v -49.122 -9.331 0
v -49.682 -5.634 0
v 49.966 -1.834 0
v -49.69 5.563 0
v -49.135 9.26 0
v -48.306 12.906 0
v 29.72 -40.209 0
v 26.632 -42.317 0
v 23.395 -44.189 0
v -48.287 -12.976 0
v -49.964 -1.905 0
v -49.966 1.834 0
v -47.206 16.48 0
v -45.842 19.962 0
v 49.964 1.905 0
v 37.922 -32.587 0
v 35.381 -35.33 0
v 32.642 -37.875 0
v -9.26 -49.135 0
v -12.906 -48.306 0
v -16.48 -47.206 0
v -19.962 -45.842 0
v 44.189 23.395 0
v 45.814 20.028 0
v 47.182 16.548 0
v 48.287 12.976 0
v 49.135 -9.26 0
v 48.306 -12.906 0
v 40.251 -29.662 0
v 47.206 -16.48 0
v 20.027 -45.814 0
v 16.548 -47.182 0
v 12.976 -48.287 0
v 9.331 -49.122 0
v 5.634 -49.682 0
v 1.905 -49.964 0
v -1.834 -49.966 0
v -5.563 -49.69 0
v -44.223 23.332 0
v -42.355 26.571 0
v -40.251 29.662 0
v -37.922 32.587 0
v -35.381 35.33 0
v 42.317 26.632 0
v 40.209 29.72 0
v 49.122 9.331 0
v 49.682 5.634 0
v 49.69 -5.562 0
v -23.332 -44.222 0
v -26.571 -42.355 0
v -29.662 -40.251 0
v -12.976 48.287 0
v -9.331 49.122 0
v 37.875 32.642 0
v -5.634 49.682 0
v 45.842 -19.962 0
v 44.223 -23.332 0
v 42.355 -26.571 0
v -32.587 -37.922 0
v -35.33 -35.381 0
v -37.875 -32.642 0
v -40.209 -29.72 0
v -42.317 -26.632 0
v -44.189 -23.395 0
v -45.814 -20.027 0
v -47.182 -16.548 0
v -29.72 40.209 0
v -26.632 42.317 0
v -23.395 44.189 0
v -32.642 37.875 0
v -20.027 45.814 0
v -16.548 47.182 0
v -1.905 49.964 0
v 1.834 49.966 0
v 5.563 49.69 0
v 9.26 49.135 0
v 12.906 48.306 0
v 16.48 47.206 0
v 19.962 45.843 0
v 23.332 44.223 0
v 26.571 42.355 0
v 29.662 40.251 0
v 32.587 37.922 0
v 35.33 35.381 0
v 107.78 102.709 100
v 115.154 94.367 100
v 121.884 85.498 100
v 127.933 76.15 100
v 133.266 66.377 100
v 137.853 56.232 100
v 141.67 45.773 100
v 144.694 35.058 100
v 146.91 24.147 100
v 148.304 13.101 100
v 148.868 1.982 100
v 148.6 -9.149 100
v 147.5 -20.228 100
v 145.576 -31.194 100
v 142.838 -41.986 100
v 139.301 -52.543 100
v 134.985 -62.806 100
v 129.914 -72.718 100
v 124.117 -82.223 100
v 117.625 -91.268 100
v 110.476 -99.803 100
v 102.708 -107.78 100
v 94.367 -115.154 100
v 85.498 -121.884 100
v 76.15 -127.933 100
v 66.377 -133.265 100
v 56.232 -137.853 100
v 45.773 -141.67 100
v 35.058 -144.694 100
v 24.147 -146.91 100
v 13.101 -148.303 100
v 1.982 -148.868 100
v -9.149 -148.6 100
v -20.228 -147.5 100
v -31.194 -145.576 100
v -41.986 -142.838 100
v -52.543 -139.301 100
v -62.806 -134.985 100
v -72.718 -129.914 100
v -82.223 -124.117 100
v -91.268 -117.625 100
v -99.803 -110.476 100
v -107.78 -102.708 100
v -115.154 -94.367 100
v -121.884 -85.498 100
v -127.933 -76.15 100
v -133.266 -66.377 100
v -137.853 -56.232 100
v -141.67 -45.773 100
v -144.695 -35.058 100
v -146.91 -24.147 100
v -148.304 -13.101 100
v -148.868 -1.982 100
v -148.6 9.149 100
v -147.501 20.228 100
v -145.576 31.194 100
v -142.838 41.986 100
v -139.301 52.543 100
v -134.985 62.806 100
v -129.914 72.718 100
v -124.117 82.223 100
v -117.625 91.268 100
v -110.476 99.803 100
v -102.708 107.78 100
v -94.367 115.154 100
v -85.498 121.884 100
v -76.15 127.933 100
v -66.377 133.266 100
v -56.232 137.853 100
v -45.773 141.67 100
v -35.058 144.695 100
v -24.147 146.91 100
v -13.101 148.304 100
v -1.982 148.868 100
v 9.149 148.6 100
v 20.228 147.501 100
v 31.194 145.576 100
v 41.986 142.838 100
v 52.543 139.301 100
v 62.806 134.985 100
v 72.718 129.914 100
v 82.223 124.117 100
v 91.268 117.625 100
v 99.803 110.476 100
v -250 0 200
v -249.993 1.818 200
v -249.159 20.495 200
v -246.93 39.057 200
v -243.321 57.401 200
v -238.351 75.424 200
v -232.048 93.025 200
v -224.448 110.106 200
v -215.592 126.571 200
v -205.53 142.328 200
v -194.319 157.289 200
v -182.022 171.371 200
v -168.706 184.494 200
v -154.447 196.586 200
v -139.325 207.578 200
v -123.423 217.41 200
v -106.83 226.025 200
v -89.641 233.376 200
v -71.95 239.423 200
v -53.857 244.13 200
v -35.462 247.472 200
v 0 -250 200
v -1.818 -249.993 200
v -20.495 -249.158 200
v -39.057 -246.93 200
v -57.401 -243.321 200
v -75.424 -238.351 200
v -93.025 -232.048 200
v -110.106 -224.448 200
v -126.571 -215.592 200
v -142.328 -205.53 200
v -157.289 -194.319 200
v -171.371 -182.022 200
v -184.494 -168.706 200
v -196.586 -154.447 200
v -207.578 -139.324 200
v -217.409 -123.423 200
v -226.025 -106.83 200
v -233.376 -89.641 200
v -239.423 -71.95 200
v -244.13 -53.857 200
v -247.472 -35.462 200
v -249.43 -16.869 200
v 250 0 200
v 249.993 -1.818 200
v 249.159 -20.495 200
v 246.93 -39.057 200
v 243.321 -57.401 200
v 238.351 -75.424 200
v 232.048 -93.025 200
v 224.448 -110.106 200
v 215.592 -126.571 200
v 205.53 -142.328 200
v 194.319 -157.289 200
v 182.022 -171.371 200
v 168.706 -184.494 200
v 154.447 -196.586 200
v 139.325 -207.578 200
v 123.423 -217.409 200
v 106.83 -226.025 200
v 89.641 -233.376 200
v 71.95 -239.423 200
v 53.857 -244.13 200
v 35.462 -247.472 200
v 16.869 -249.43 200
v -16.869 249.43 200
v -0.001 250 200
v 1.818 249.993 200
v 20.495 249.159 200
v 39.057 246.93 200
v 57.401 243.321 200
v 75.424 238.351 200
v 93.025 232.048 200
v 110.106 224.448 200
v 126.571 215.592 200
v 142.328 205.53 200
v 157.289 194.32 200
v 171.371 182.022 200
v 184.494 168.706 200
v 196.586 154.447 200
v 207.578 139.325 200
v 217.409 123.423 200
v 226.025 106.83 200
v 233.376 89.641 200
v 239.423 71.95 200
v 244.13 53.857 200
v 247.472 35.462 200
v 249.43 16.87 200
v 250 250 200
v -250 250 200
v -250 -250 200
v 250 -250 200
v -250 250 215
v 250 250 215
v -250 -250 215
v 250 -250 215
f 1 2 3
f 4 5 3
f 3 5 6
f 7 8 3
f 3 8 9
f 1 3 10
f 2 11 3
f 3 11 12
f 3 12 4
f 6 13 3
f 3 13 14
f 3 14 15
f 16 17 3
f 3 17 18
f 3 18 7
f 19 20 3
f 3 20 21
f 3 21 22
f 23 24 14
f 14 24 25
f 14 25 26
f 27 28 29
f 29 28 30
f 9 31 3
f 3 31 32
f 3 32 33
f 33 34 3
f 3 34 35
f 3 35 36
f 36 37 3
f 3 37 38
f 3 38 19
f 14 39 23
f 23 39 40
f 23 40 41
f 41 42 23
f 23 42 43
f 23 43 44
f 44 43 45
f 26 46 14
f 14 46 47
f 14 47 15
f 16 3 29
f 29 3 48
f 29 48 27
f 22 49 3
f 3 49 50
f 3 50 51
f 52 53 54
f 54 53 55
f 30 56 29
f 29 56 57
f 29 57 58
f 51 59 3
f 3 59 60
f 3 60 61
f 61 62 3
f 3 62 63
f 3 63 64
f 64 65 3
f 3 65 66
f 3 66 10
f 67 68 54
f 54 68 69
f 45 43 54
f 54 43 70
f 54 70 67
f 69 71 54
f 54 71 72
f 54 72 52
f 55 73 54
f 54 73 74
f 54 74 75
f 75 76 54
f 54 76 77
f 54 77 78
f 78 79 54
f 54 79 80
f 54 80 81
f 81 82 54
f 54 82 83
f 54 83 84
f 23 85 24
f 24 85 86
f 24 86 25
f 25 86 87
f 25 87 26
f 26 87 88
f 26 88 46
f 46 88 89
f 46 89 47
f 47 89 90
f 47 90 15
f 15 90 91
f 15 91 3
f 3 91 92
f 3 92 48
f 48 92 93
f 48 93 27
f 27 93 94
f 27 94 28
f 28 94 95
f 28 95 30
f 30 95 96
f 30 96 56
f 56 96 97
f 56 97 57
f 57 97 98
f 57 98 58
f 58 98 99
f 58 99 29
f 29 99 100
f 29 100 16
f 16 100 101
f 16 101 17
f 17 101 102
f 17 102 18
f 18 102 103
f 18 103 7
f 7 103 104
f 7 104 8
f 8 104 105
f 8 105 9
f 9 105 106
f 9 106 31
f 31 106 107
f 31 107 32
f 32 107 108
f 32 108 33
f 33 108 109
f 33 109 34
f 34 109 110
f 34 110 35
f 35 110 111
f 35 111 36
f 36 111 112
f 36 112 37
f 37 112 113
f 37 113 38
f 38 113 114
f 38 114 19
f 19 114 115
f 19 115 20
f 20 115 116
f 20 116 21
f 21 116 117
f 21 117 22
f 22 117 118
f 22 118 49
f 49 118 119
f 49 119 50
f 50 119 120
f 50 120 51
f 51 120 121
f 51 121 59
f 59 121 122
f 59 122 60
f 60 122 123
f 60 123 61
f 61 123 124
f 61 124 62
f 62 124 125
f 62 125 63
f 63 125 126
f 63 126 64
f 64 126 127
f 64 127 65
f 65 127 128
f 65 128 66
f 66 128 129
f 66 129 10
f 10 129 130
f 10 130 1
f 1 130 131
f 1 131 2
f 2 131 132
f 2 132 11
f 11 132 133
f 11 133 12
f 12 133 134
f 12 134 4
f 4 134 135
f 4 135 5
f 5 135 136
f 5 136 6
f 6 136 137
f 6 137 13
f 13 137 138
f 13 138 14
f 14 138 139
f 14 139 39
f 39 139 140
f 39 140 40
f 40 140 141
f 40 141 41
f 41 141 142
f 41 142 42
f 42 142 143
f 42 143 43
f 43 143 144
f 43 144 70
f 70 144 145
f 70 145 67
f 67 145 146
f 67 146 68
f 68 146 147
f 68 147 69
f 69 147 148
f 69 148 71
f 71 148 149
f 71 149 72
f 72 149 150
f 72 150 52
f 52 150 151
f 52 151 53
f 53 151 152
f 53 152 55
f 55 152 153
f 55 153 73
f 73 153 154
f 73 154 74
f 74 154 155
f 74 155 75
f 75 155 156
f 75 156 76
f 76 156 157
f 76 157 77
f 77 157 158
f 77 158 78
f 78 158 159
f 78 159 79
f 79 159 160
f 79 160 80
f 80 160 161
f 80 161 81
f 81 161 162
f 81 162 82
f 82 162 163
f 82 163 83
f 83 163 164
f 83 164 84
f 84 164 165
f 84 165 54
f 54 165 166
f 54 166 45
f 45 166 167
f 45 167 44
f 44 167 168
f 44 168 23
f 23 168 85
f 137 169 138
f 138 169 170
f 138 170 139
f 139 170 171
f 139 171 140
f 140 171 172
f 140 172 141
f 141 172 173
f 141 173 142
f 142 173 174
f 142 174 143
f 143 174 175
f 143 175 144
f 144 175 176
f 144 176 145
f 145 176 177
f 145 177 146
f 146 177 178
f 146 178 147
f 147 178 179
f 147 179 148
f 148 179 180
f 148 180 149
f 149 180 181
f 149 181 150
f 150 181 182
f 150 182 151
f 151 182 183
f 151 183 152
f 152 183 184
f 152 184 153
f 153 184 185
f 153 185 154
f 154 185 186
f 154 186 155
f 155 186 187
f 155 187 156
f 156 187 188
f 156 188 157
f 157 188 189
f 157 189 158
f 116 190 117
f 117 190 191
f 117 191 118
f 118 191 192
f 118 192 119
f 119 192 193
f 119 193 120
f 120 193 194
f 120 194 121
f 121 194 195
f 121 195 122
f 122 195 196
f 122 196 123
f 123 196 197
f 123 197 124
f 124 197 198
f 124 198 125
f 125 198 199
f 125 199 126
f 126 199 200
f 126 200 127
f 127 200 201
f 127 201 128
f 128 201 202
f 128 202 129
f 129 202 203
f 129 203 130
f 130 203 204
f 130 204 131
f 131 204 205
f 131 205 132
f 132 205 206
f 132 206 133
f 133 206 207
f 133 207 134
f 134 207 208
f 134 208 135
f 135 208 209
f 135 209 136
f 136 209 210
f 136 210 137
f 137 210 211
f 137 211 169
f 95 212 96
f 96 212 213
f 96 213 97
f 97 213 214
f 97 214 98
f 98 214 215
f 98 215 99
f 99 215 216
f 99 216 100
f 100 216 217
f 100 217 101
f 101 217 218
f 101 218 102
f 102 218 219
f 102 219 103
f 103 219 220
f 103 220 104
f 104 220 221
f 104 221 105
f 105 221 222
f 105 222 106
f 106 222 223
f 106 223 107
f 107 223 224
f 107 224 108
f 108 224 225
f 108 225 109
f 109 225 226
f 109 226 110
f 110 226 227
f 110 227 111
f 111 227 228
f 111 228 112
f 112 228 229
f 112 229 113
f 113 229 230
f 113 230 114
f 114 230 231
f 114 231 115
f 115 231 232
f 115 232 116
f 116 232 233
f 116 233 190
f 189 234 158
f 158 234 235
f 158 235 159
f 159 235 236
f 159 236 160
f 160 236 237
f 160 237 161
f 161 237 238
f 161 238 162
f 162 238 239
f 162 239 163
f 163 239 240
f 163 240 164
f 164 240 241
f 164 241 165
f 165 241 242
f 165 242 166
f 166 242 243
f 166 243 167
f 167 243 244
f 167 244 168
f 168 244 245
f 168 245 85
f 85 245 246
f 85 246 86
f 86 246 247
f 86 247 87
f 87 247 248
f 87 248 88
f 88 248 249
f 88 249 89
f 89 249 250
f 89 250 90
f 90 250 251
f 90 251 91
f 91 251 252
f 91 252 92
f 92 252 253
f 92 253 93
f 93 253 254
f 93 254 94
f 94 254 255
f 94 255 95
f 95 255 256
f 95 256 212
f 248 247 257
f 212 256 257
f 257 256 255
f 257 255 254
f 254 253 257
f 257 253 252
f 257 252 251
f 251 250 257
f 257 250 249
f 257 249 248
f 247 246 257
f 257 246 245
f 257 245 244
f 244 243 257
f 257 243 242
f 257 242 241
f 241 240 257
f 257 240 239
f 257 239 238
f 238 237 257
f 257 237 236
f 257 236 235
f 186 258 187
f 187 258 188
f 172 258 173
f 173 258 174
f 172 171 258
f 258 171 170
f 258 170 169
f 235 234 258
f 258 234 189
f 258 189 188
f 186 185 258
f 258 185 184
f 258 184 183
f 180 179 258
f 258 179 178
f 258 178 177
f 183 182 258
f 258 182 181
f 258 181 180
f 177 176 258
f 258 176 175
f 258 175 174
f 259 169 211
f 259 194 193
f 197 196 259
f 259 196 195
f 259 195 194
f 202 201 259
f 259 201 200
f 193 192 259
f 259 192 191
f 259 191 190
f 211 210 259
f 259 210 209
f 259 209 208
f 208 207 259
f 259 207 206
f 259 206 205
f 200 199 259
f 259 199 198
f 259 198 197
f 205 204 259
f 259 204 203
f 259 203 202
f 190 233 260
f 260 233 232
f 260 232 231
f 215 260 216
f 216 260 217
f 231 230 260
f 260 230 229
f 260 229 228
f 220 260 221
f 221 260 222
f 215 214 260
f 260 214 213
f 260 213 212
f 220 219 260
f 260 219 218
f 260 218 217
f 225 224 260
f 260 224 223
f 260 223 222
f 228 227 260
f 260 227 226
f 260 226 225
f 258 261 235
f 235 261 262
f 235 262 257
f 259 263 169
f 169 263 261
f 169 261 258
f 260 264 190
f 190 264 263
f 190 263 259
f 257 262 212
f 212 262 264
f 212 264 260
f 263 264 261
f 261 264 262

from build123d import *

# Parameters (mm, degrees)
EXTRUDE_1_DEPTH = 15


with BuildPart() as part:
    # 放样1: read off the stored shape, not the designer's step
    # 放样1: loft between two sections, ruled curve by curve
    loft_1_from = [
        Edge.make_bspline([(157.289403045, 194.319437241, 200), (545.928277528, -120.259368848, 200), (231.349471438, -508.898243331, 200), (-157.289403045, -194.319437241, 200), (-545.928277528, 120.259368848, 200), (-231.349471438, 508.898243331, 200), (157.289403045, 194.319437241, 200)], [0, 0, 0, 0, 0.5, 0.5, 0.5, 1, 1, 1, 1], 3, [1, 0.333333333, 0.333333333, 1, 0.333333333, 0.333333333, 1]),
    ]
    loft_1_to = [
        Edge.make_bspline([(42.317097013, 26.631997679, 0), (95.581092372, -58.002196347, 0), (10.946898346, -111.266191705, 0), (-42.317097013, -26.631997679, 0), (-95.581092372, 58.002196347, 0), (-10.946898346, 111.266191705, 0), (42.317097013, 26.631997679, 0)], [0, 0, 0, 0, 0.5, 0.5, 0.5, 1, 1, 1, 1], 3, [1, 0.333333333, 0.333333333, 1, 0.333333333, 0.333333333, 1]),
    ]
    loft_1 = Solid(Shell([*[Face.make_surface_from_curves(loft_1_from[k], loft_1_to[k]) for k in range(1)], Face(Wire(loft_1_from)), Face(Wire(loft_1_to))]))
    add(loft_1)

    # 草图4 → 凸台-拉伸1 (add)
    with BuildSketch(Plane.XY.offset(200)):
        Polygon((0, 250), (-250, 250), (-250, -250), (250, -250), (250, 250), align=None)
    extrude(amount=EXTRUDE_1_DEPTH)


solid = part.part
